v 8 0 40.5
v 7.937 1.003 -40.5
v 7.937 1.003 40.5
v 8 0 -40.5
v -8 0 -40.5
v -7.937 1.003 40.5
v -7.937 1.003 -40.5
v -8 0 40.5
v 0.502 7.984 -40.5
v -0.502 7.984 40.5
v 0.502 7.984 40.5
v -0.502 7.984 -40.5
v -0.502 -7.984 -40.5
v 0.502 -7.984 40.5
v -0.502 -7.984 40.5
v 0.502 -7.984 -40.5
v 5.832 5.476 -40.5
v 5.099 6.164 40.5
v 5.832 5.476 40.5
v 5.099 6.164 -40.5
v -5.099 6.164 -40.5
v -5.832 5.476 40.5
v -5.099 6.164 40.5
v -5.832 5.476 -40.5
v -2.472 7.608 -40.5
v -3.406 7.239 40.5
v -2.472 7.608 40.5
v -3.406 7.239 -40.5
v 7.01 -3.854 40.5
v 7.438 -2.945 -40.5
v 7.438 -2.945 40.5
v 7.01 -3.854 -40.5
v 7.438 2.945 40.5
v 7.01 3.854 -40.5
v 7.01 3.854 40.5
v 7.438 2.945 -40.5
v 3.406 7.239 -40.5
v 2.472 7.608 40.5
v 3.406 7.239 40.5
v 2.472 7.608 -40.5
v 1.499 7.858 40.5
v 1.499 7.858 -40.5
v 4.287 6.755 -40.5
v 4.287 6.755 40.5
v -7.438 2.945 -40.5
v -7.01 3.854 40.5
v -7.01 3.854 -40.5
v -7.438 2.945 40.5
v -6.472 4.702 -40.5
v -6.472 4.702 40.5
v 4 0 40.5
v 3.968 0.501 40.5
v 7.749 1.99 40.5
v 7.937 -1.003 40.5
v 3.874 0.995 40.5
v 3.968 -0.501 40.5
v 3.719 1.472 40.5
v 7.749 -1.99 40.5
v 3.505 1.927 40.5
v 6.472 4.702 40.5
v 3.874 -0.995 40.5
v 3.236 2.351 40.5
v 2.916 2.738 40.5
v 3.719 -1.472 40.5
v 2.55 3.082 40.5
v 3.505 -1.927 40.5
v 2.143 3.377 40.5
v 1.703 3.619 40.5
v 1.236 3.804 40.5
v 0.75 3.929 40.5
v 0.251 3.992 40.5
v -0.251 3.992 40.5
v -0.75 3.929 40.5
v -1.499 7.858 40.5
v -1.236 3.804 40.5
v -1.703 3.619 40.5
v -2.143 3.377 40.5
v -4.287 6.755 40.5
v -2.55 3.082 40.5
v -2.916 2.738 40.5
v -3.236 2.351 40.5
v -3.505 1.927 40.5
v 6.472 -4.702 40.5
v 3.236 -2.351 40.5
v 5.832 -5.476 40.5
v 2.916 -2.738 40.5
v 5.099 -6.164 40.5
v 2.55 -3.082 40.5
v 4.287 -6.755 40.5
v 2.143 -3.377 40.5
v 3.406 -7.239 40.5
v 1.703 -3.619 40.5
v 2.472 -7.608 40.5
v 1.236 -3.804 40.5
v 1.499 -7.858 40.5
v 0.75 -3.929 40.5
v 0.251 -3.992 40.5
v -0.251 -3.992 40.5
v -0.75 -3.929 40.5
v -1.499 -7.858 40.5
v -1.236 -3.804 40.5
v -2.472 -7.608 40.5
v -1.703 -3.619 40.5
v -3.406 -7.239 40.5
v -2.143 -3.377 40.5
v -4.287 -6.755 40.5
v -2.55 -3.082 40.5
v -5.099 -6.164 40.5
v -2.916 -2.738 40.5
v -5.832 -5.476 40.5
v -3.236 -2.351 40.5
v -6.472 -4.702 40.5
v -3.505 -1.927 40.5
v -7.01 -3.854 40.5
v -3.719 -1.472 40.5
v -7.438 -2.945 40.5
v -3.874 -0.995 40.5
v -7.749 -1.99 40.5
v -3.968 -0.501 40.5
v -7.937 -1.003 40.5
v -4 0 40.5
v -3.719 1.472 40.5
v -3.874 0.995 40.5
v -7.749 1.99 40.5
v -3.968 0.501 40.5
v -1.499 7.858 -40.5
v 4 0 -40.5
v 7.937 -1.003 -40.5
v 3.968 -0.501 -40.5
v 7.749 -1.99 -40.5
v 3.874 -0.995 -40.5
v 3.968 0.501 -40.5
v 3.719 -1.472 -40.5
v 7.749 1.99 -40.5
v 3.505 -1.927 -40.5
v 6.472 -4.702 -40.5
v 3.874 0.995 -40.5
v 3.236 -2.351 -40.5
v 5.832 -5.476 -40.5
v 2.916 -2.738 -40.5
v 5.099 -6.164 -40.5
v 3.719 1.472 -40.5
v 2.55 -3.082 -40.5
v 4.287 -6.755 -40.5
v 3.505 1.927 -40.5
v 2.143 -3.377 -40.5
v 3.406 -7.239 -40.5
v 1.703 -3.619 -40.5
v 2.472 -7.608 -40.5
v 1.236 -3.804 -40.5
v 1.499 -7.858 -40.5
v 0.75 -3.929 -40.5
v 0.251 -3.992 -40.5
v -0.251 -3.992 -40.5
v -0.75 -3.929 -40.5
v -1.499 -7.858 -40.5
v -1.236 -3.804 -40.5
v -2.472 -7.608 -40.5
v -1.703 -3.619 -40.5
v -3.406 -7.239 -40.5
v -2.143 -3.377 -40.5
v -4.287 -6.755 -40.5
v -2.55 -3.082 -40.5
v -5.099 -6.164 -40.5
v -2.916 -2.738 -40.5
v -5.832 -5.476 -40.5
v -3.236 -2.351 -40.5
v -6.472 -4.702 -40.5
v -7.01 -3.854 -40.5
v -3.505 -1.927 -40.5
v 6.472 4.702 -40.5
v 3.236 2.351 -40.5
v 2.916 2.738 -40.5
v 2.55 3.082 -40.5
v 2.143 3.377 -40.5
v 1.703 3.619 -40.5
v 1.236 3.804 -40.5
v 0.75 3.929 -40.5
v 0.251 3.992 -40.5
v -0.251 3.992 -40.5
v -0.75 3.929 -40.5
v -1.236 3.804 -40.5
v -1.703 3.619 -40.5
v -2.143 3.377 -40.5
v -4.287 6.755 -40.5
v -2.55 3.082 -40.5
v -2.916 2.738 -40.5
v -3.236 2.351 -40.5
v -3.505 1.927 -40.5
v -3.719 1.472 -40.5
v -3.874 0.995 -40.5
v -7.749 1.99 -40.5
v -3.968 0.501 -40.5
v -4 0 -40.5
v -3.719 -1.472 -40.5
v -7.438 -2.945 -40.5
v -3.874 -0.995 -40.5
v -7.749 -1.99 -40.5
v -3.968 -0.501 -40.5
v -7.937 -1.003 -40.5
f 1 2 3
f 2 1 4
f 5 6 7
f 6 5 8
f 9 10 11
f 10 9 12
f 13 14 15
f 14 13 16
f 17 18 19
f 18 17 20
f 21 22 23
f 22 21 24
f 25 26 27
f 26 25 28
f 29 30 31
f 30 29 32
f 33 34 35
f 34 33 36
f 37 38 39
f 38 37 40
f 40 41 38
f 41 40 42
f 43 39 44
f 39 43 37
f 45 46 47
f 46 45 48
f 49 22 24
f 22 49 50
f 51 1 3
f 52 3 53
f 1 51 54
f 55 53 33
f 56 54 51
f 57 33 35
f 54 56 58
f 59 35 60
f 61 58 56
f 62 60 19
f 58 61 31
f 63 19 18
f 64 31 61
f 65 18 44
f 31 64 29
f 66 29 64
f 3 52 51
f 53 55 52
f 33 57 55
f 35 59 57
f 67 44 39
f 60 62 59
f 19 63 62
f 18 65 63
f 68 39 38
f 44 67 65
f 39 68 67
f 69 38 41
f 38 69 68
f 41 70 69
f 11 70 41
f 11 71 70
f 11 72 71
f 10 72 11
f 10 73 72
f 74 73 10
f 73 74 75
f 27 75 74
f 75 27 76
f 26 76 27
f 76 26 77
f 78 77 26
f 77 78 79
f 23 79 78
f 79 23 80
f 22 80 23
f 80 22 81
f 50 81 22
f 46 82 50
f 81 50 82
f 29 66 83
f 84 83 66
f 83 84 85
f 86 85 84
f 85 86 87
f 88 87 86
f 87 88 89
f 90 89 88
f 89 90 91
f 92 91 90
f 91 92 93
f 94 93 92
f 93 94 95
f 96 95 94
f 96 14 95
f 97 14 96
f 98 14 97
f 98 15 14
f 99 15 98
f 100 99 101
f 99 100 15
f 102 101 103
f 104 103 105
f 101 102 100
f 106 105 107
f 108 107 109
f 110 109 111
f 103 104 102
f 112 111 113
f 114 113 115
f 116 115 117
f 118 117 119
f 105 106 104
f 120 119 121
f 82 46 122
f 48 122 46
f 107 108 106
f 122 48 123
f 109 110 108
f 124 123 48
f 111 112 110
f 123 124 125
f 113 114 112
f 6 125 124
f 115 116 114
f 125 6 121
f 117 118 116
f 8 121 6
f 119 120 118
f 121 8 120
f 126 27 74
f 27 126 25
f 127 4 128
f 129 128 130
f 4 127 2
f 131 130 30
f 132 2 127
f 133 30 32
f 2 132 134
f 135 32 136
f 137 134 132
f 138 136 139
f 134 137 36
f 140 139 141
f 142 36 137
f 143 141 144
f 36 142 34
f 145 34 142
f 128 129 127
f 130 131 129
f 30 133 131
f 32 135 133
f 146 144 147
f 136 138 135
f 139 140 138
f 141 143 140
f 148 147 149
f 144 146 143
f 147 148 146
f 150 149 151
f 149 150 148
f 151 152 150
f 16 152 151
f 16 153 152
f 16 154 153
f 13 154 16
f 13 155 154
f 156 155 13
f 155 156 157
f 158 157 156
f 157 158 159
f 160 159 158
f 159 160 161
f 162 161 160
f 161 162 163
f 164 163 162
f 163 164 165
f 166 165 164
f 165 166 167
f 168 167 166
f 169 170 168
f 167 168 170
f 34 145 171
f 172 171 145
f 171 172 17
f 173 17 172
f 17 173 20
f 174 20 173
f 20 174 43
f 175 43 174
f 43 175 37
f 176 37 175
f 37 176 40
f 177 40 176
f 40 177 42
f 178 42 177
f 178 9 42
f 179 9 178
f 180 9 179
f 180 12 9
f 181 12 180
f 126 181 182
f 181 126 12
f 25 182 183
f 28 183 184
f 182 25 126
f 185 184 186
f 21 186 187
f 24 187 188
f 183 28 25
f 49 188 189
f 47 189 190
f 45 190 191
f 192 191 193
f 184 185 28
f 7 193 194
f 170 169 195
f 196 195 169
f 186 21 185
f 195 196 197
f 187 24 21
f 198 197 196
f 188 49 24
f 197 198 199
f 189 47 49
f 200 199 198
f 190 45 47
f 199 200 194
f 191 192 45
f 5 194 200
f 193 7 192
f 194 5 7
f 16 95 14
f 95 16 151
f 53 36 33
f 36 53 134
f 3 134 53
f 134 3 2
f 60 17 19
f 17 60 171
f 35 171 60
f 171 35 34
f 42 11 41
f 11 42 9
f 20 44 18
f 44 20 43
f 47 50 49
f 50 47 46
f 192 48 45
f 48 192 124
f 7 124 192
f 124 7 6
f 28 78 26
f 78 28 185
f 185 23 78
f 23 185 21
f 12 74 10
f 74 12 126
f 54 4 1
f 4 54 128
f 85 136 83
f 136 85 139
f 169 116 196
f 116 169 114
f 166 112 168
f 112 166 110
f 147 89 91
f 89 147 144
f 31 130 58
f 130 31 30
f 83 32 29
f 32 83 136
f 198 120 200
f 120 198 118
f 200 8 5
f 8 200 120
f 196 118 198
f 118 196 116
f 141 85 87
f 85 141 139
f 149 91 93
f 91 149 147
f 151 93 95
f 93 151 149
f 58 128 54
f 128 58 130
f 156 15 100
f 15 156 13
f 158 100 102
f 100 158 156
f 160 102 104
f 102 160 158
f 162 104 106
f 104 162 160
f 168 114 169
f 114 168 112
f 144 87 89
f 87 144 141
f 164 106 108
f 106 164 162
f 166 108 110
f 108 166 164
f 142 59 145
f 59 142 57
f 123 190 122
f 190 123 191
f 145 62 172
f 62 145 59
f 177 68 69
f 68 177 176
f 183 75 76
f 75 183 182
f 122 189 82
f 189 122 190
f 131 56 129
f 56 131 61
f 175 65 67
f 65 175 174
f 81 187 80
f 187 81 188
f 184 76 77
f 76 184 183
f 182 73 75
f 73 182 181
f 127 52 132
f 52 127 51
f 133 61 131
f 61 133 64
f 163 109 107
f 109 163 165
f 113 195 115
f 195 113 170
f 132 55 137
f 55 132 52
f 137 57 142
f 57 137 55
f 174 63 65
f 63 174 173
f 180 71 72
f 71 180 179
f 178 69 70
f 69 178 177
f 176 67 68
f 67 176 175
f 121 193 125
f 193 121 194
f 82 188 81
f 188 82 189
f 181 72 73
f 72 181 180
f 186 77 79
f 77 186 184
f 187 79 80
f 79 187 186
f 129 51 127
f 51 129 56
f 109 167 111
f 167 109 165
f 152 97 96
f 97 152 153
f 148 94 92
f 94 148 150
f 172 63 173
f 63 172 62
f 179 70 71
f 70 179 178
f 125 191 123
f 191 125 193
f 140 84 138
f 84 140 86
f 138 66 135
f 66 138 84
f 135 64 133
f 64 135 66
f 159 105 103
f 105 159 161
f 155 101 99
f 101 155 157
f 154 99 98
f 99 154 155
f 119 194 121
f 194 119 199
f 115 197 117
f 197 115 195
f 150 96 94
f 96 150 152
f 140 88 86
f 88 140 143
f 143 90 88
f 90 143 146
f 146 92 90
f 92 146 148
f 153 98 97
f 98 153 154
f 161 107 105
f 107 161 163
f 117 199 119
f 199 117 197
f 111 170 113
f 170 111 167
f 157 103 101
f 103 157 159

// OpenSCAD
$fn = 50;


difference() {
	union() {
		translate(v = [0, 0, -40.5000000000]) {
			cylinder(h = 81, r = 8.0000000000);
		}
	}
	union() {
		translate(v = [0, 0, -100.0000000000]) {
			cylinder(h = 200, r = 4.0000000000);
		}
	}
}
